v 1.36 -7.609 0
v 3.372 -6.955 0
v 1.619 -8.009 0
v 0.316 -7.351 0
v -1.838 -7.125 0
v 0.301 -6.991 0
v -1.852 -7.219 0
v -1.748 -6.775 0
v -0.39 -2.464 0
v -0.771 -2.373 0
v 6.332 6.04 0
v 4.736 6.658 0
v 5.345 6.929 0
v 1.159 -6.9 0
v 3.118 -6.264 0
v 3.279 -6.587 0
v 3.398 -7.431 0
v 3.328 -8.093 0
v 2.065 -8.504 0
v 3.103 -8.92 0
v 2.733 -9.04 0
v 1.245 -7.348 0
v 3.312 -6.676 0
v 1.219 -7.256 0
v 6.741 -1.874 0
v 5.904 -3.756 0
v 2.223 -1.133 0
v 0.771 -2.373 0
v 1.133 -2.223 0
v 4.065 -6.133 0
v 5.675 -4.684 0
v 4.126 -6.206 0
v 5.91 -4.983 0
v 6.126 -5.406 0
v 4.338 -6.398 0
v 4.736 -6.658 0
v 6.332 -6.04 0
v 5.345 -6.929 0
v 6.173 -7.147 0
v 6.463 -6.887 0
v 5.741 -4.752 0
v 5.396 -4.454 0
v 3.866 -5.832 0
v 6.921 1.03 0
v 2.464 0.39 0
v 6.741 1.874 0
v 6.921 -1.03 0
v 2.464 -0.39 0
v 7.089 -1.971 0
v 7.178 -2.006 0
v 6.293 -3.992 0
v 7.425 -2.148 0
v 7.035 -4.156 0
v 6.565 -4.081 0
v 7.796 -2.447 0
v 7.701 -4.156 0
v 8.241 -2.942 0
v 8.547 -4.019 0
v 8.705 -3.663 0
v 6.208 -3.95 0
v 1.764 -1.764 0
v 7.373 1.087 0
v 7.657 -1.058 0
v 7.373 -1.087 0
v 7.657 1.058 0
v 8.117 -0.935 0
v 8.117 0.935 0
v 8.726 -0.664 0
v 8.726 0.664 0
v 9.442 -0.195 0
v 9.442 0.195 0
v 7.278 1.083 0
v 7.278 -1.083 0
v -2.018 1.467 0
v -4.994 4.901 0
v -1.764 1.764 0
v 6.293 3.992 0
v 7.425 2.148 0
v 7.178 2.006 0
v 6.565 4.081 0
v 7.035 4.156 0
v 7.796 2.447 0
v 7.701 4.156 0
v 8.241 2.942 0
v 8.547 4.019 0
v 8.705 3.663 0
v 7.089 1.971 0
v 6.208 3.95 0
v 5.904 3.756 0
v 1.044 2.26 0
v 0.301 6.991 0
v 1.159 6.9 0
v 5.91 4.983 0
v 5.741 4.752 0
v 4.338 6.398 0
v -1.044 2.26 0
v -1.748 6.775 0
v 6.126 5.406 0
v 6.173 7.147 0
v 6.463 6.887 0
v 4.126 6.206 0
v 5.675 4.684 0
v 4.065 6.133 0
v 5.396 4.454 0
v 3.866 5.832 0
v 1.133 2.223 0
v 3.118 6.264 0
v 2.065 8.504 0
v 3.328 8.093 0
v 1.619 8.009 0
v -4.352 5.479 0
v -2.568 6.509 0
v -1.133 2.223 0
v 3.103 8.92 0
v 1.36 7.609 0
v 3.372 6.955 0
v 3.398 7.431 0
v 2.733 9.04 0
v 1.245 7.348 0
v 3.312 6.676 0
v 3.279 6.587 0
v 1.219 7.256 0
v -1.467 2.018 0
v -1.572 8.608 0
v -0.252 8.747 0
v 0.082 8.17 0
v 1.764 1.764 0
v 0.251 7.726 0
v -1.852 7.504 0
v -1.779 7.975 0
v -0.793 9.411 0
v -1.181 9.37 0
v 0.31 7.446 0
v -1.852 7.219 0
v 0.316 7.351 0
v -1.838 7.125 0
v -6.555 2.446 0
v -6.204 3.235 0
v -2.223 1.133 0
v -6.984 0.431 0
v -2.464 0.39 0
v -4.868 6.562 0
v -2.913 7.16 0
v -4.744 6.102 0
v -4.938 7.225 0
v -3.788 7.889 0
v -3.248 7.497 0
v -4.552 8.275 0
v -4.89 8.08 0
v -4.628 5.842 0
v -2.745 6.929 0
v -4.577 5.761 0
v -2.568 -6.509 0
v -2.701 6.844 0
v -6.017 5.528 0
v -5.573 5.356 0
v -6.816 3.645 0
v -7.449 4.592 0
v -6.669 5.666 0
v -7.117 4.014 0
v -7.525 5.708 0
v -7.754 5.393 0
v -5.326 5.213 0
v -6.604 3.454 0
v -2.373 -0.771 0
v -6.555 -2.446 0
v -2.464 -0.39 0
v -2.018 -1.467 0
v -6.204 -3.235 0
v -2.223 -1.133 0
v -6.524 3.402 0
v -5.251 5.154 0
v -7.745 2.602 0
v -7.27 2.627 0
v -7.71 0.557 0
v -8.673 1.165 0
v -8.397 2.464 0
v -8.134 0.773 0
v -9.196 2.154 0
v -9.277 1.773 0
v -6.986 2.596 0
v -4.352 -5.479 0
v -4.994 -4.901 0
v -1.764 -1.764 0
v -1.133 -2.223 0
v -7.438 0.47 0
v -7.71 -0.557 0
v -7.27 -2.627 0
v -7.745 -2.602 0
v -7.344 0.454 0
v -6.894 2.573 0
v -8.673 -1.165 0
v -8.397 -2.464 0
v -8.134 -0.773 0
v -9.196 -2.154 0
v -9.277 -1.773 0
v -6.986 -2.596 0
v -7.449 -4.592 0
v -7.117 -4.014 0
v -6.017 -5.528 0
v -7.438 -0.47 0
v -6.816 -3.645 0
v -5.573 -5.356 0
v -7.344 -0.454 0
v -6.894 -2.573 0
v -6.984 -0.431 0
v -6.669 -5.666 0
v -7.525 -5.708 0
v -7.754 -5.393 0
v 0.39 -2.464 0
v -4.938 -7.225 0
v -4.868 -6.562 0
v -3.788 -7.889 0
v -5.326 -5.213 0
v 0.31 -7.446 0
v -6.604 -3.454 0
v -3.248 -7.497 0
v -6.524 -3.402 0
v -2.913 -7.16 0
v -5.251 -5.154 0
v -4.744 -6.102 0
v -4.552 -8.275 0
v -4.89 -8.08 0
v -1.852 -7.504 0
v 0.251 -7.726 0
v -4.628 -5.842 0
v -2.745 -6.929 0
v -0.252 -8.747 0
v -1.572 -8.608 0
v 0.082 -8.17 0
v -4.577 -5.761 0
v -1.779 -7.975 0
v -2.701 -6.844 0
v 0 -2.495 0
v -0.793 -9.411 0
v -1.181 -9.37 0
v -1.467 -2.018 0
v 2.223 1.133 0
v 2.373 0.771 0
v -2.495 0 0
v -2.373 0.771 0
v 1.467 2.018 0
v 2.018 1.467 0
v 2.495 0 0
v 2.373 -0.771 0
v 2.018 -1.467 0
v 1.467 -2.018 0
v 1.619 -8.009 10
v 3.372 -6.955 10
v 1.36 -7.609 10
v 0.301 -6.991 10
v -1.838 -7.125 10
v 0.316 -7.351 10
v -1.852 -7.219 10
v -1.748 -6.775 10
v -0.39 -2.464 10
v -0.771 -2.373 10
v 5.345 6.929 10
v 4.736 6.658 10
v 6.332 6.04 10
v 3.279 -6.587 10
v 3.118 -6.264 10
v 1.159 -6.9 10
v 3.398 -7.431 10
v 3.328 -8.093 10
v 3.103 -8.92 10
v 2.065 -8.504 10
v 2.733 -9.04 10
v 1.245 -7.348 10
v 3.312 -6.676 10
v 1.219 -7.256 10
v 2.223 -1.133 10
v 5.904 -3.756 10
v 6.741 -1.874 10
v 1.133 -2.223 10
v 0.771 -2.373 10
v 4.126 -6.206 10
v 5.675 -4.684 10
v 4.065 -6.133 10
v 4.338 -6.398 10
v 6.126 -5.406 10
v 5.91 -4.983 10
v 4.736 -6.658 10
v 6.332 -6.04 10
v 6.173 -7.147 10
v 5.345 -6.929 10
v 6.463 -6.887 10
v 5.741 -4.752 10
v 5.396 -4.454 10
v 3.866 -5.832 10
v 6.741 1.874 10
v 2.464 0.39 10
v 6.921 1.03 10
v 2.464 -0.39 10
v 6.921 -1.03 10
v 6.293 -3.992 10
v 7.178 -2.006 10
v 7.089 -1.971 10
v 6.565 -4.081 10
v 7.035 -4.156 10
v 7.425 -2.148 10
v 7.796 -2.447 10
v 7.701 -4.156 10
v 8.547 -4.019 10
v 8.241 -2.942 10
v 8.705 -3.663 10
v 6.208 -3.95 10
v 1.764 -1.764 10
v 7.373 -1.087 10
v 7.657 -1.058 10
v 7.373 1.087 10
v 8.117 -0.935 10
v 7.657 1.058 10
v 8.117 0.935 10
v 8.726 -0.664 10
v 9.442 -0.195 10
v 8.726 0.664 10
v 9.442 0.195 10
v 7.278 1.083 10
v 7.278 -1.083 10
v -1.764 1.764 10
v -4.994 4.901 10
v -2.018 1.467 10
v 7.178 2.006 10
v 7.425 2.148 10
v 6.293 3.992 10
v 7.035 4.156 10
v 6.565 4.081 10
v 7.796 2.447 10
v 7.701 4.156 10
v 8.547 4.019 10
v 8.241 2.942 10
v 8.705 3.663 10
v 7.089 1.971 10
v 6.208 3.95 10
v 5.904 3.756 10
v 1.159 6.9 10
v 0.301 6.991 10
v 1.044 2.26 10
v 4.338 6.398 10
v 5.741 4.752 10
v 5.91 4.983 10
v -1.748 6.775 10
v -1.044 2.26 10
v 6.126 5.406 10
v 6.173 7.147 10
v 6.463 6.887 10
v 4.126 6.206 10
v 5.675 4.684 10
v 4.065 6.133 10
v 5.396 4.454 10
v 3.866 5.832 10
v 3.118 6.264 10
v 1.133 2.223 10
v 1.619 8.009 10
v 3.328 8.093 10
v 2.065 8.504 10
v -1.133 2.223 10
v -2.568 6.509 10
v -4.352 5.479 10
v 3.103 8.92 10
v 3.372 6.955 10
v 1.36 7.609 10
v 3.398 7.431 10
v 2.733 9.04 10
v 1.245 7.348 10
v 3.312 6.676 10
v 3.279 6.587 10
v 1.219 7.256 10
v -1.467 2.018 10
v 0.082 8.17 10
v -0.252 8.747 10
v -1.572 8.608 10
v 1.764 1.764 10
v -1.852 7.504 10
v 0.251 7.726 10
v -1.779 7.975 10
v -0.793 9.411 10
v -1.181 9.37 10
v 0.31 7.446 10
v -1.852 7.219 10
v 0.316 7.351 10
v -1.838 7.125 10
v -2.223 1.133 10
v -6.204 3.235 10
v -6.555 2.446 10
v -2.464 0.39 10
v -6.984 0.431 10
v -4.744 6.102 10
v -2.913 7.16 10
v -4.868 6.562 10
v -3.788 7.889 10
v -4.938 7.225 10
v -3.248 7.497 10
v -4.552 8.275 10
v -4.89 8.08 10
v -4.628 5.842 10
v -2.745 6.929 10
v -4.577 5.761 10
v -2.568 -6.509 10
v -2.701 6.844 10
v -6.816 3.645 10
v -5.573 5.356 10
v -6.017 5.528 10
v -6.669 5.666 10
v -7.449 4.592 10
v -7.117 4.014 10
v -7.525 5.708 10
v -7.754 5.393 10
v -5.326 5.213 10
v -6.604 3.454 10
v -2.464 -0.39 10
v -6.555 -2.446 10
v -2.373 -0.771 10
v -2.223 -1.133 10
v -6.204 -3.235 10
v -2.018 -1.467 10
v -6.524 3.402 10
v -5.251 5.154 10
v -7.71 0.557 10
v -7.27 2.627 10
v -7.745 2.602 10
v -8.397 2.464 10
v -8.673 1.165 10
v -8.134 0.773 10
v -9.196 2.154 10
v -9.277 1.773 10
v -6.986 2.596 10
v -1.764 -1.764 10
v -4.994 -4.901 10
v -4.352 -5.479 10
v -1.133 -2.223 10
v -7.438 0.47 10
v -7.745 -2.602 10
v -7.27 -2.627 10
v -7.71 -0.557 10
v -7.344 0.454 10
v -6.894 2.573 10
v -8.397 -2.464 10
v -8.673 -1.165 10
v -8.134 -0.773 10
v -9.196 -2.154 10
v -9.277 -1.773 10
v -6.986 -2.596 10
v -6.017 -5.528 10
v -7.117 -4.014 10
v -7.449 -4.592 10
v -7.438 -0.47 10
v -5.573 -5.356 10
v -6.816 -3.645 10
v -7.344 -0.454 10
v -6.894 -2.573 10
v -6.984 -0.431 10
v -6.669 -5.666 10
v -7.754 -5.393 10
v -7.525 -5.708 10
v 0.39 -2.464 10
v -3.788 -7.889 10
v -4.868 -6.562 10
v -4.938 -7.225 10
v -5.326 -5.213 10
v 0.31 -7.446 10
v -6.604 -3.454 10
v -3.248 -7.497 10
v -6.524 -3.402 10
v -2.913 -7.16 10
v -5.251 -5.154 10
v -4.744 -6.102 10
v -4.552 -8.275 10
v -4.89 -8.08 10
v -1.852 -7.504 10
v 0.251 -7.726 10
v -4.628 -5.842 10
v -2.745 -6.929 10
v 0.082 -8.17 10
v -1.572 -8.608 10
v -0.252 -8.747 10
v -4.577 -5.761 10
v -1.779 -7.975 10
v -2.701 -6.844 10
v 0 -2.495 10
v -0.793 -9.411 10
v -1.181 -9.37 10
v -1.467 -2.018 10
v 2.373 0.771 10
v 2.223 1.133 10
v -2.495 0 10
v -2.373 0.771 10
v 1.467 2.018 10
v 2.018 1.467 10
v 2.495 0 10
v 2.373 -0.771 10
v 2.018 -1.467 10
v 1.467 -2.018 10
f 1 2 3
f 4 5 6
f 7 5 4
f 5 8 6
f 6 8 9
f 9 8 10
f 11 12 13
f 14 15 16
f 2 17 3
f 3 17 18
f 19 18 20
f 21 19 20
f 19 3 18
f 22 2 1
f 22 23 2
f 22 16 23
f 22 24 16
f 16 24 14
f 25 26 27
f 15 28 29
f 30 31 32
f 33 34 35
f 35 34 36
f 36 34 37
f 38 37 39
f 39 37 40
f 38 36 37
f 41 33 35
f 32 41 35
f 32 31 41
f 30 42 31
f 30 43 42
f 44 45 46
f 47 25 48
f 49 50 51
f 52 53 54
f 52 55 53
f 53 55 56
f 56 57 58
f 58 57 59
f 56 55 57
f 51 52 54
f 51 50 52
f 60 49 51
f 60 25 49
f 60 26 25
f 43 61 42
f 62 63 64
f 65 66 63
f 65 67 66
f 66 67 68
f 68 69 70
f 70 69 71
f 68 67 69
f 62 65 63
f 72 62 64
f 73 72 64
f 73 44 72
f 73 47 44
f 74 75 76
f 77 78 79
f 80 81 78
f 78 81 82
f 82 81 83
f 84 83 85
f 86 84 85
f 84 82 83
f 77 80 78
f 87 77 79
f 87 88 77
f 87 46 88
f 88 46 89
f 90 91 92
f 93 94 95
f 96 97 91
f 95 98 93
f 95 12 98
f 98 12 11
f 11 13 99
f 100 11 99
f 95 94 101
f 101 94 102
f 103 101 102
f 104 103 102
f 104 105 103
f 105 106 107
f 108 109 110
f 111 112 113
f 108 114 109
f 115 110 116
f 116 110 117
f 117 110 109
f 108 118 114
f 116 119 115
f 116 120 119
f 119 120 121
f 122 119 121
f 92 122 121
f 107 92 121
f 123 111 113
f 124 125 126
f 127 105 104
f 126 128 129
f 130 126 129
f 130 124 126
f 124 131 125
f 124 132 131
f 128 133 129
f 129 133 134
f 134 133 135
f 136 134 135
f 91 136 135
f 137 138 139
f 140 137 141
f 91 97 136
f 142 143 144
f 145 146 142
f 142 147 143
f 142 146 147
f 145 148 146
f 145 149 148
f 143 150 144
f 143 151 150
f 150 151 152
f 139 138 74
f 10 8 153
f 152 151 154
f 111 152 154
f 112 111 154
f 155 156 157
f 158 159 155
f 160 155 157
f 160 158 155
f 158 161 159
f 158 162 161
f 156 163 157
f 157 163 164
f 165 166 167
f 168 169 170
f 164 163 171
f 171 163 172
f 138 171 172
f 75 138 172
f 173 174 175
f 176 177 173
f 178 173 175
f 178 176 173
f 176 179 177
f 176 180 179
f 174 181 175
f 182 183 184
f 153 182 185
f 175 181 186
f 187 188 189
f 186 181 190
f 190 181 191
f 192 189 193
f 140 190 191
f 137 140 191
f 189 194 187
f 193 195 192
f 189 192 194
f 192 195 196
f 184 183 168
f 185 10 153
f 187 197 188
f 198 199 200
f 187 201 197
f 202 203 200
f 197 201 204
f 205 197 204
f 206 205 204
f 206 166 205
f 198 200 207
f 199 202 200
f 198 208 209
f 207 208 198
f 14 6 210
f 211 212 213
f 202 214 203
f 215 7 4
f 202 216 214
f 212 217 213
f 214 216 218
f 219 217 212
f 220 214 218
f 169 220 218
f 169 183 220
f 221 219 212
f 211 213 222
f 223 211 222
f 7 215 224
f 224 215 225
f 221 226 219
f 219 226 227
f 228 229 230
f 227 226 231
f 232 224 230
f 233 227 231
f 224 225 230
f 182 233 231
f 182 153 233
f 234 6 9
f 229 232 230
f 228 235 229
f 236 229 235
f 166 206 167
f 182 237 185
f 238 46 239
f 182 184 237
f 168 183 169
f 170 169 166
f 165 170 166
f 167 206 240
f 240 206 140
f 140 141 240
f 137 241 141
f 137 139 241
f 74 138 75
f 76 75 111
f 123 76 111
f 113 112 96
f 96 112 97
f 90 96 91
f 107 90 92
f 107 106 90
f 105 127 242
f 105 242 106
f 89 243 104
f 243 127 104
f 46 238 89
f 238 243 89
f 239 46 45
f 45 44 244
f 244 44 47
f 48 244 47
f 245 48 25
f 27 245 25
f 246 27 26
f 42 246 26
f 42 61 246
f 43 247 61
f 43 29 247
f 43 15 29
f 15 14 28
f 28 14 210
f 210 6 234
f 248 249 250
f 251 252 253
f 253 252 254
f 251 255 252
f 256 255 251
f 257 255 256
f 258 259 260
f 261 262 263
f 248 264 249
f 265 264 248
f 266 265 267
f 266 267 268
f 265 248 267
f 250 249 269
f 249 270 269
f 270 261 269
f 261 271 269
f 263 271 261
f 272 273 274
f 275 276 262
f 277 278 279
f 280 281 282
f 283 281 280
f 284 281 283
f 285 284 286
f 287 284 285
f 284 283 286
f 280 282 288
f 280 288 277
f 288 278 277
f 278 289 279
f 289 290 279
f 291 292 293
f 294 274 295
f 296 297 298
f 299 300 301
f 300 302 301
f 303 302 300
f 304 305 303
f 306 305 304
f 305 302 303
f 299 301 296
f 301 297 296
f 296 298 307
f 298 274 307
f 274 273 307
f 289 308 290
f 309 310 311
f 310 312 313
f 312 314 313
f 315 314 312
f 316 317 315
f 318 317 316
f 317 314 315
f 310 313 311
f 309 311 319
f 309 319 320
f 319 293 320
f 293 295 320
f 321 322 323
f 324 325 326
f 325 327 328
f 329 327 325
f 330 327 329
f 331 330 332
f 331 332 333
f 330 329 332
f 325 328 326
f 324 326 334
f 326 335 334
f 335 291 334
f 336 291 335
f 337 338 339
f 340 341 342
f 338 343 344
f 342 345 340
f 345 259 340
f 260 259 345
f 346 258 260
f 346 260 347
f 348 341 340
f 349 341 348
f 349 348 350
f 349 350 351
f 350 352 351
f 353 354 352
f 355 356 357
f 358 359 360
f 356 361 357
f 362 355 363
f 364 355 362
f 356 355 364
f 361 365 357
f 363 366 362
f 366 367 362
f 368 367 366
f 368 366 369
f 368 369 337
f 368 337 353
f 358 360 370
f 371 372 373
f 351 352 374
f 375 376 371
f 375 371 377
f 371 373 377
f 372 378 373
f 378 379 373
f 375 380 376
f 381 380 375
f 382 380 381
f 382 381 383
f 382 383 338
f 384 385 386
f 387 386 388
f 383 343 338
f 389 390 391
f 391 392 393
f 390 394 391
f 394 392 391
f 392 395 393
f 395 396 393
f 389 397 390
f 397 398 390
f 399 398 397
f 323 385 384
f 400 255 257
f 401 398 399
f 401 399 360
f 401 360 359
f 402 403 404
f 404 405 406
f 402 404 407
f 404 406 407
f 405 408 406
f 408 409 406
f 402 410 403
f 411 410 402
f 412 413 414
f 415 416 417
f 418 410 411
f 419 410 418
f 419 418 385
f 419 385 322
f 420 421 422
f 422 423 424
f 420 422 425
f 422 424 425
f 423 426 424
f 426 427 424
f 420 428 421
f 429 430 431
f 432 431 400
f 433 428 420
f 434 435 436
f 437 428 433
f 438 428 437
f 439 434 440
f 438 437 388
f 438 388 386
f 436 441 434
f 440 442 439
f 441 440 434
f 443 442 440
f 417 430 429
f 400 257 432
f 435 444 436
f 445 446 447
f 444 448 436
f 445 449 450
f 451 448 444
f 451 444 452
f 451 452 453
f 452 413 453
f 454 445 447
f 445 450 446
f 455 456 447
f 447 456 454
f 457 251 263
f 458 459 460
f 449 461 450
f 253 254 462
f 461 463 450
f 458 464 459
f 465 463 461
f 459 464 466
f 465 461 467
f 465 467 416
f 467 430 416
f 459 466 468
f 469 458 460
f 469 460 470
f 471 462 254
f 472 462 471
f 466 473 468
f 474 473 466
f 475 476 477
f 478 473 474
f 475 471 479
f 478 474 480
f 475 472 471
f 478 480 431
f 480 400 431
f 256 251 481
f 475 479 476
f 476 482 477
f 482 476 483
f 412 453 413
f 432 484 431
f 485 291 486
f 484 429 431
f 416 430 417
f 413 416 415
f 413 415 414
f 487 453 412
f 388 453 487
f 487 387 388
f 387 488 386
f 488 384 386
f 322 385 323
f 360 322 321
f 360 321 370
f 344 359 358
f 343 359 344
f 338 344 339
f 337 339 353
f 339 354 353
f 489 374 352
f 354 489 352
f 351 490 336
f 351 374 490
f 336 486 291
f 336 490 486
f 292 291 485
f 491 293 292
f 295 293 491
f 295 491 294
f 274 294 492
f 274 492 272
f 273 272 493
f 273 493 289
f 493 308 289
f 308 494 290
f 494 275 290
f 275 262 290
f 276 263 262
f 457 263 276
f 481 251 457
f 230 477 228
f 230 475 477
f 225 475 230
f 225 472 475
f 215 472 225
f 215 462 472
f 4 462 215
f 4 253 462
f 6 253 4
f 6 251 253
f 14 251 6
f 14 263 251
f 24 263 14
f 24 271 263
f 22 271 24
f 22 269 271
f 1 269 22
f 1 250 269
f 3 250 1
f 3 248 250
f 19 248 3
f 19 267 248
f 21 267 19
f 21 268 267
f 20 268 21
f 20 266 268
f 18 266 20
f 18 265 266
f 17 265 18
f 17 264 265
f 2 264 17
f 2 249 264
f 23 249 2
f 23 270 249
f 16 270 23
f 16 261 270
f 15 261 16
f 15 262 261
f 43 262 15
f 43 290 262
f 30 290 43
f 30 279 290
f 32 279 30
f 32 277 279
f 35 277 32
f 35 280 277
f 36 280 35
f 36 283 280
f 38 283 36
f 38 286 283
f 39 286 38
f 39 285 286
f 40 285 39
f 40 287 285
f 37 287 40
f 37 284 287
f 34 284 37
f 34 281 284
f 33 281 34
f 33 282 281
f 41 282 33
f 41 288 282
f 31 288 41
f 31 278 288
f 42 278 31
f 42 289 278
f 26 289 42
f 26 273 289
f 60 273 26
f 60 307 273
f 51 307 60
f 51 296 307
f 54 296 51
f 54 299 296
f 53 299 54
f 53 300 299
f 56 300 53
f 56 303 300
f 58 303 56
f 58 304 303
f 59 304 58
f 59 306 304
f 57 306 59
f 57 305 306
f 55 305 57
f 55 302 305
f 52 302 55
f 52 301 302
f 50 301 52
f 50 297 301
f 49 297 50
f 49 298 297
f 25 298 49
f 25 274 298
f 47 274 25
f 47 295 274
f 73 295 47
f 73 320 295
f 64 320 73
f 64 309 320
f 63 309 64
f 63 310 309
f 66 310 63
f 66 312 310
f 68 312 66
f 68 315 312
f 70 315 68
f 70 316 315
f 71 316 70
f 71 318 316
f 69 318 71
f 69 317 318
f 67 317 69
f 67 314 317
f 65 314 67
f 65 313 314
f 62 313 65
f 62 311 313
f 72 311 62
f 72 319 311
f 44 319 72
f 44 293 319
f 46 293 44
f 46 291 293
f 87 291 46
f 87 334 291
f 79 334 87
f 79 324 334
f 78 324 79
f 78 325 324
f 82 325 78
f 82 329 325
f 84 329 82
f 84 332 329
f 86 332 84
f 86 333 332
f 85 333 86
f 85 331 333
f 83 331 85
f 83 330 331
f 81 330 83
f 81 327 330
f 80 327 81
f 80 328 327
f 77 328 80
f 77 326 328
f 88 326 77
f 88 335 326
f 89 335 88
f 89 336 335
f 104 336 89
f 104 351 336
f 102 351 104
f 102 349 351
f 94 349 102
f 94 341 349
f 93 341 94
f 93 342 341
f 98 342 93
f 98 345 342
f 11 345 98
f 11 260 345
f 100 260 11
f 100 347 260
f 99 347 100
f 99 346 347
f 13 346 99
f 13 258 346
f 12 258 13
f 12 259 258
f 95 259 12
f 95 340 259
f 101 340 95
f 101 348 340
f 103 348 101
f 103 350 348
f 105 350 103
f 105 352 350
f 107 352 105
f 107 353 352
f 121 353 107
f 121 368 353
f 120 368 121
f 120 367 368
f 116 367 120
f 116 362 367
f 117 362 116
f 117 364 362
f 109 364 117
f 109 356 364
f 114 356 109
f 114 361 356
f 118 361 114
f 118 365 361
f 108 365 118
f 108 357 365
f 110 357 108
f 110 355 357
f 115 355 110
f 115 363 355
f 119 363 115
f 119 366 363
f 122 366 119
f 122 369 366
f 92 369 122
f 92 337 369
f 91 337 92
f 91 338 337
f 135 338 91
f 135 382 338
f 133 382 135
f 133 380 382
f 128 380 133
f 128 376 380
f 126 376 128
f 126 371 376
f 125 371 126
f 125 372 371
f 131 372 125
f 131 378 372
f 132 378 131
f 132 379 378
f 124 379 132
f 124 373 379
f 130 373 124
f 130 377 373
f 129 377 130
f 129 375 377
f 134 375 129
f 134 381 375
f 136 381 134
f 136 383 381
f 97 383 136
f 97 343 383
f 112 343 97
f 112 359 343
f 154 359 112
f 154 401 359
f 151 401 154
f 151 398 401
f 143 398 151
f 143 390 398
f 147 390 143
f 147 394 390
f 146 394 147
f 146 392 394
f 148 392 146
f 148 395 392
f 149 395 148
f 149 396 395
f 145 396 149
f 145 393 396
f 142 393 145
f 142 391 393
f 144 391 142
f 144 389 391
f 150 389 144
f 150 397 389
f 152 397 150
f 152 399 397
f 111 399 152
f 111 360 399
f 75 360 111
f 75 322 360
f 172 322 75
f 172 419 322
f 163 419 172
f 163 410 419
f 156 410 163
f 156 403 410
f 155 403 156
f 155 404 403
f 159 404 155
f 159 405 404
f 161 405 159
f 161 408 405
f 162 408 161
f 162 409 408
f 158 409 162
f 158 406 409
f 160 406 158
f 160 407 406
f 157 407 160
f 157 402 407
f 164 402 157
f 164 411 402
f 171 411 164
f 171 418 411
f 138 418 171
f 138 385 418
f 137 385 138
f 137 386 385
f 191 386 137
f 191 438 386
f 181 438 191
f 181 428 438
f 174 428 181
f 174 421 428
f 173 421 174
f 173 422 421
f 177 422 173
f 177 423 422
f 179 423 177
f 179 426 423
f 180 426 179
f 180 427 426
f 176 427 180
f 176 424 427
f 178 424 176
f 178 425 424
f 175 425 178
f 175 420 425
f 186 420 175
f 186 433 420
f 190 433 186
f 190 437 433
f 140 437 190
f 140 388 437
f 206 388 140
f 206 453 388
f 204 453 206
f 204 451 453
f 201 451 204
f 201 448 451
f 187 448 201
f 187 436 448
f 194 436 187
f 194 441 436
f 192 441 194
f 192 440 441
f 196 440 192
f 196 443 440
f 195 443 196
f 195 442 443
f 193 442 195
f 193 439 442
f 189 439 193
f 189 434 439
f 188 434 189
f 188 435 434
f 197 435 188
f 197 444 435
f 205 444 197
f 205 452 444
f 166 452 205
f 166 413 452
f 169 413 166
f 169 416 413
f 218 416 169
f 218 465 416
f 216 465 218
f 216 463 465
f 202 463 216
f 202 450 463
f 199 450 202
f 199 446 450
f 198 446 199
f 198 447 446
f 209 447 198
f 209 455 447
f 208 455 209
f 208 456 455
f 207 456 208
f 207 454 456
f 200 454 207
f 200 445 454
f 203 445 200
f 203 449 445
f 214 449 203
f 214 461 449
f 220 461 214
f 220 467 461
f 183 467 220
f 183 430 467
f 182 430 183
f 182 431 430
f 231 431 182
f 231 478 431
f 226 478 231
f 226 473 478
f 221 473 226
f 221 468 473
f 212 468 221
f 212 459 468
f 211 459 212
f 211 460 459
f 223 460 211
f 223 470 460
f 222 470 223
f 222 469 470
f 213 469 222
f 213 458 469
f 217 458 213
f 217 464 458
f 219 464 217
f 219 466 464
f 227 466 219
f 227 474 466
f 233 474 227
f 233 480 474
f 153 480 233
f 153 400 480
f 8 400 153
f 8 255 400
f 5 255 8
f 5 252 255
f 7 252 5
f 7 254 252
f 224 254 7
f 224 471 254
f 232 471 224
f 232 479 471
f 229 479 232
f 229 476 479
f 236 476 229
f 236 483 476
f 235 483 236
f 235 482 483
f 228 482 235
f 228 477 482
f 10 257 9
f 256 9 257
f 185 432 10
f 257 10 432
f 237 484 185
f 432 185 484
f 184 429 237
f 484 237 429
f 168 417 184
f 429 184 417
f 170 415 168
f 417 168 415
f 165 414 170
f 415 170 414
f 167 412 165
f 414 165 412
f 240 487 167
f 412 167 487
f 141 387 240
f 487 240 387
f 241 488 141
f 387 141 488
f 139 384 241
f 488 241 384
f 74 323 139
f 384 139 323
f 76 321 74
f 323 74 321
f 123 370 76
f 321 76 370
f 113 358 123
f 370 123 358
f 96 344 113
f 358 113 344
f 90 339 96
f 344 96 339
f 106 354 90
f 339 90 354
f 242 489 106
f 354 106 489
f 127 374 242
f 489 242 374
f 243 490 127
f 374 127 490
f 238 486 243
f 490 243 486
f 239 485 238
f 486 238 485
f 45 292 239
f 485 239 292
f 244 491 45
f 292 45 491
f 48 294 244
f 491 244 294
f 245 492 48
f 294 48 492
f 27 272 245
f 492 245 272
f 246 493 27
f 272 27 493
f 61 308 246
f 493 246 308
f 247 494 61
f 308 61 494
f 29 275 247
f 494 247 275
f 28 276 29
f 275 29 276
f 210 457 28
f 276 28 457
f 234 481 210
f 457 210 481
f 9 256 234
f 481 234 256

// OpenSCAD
// so, about the stepper
// according to a random datasheet I found online, the diameter of the shaft is 4.99mm, while the width of the indent is 4.52mm

use <MCAD/involute_gears.scad>
circular_pitch = 200; // idk what this is other than that it makes the gear bigger
//gear_height = 10; // height of the gear when it gets linear_extruded
$fa = 1; // idk waht these are lol
$fs = 0.4;


module 2dstepperhead(shaft_diameter=4.99, indent=4.52) { // generate the stepper head with specified shaft and indent lengths
    difference() {
        circle(d=shaft_diameter);
        translate([-5,indent/2]) {
            square(10); // the actual size of the square doesn't really matter
        }
    }
}

steppergear();
module steppergear(height=10) {
   linear_extrude(height=height) {
    difference() {
        gear(number_of_teeth=15, circular_pitch=circular_pitch,flat=true,bore_diameter=0);
        2dstepperhead();
    }
} 
}
//}
